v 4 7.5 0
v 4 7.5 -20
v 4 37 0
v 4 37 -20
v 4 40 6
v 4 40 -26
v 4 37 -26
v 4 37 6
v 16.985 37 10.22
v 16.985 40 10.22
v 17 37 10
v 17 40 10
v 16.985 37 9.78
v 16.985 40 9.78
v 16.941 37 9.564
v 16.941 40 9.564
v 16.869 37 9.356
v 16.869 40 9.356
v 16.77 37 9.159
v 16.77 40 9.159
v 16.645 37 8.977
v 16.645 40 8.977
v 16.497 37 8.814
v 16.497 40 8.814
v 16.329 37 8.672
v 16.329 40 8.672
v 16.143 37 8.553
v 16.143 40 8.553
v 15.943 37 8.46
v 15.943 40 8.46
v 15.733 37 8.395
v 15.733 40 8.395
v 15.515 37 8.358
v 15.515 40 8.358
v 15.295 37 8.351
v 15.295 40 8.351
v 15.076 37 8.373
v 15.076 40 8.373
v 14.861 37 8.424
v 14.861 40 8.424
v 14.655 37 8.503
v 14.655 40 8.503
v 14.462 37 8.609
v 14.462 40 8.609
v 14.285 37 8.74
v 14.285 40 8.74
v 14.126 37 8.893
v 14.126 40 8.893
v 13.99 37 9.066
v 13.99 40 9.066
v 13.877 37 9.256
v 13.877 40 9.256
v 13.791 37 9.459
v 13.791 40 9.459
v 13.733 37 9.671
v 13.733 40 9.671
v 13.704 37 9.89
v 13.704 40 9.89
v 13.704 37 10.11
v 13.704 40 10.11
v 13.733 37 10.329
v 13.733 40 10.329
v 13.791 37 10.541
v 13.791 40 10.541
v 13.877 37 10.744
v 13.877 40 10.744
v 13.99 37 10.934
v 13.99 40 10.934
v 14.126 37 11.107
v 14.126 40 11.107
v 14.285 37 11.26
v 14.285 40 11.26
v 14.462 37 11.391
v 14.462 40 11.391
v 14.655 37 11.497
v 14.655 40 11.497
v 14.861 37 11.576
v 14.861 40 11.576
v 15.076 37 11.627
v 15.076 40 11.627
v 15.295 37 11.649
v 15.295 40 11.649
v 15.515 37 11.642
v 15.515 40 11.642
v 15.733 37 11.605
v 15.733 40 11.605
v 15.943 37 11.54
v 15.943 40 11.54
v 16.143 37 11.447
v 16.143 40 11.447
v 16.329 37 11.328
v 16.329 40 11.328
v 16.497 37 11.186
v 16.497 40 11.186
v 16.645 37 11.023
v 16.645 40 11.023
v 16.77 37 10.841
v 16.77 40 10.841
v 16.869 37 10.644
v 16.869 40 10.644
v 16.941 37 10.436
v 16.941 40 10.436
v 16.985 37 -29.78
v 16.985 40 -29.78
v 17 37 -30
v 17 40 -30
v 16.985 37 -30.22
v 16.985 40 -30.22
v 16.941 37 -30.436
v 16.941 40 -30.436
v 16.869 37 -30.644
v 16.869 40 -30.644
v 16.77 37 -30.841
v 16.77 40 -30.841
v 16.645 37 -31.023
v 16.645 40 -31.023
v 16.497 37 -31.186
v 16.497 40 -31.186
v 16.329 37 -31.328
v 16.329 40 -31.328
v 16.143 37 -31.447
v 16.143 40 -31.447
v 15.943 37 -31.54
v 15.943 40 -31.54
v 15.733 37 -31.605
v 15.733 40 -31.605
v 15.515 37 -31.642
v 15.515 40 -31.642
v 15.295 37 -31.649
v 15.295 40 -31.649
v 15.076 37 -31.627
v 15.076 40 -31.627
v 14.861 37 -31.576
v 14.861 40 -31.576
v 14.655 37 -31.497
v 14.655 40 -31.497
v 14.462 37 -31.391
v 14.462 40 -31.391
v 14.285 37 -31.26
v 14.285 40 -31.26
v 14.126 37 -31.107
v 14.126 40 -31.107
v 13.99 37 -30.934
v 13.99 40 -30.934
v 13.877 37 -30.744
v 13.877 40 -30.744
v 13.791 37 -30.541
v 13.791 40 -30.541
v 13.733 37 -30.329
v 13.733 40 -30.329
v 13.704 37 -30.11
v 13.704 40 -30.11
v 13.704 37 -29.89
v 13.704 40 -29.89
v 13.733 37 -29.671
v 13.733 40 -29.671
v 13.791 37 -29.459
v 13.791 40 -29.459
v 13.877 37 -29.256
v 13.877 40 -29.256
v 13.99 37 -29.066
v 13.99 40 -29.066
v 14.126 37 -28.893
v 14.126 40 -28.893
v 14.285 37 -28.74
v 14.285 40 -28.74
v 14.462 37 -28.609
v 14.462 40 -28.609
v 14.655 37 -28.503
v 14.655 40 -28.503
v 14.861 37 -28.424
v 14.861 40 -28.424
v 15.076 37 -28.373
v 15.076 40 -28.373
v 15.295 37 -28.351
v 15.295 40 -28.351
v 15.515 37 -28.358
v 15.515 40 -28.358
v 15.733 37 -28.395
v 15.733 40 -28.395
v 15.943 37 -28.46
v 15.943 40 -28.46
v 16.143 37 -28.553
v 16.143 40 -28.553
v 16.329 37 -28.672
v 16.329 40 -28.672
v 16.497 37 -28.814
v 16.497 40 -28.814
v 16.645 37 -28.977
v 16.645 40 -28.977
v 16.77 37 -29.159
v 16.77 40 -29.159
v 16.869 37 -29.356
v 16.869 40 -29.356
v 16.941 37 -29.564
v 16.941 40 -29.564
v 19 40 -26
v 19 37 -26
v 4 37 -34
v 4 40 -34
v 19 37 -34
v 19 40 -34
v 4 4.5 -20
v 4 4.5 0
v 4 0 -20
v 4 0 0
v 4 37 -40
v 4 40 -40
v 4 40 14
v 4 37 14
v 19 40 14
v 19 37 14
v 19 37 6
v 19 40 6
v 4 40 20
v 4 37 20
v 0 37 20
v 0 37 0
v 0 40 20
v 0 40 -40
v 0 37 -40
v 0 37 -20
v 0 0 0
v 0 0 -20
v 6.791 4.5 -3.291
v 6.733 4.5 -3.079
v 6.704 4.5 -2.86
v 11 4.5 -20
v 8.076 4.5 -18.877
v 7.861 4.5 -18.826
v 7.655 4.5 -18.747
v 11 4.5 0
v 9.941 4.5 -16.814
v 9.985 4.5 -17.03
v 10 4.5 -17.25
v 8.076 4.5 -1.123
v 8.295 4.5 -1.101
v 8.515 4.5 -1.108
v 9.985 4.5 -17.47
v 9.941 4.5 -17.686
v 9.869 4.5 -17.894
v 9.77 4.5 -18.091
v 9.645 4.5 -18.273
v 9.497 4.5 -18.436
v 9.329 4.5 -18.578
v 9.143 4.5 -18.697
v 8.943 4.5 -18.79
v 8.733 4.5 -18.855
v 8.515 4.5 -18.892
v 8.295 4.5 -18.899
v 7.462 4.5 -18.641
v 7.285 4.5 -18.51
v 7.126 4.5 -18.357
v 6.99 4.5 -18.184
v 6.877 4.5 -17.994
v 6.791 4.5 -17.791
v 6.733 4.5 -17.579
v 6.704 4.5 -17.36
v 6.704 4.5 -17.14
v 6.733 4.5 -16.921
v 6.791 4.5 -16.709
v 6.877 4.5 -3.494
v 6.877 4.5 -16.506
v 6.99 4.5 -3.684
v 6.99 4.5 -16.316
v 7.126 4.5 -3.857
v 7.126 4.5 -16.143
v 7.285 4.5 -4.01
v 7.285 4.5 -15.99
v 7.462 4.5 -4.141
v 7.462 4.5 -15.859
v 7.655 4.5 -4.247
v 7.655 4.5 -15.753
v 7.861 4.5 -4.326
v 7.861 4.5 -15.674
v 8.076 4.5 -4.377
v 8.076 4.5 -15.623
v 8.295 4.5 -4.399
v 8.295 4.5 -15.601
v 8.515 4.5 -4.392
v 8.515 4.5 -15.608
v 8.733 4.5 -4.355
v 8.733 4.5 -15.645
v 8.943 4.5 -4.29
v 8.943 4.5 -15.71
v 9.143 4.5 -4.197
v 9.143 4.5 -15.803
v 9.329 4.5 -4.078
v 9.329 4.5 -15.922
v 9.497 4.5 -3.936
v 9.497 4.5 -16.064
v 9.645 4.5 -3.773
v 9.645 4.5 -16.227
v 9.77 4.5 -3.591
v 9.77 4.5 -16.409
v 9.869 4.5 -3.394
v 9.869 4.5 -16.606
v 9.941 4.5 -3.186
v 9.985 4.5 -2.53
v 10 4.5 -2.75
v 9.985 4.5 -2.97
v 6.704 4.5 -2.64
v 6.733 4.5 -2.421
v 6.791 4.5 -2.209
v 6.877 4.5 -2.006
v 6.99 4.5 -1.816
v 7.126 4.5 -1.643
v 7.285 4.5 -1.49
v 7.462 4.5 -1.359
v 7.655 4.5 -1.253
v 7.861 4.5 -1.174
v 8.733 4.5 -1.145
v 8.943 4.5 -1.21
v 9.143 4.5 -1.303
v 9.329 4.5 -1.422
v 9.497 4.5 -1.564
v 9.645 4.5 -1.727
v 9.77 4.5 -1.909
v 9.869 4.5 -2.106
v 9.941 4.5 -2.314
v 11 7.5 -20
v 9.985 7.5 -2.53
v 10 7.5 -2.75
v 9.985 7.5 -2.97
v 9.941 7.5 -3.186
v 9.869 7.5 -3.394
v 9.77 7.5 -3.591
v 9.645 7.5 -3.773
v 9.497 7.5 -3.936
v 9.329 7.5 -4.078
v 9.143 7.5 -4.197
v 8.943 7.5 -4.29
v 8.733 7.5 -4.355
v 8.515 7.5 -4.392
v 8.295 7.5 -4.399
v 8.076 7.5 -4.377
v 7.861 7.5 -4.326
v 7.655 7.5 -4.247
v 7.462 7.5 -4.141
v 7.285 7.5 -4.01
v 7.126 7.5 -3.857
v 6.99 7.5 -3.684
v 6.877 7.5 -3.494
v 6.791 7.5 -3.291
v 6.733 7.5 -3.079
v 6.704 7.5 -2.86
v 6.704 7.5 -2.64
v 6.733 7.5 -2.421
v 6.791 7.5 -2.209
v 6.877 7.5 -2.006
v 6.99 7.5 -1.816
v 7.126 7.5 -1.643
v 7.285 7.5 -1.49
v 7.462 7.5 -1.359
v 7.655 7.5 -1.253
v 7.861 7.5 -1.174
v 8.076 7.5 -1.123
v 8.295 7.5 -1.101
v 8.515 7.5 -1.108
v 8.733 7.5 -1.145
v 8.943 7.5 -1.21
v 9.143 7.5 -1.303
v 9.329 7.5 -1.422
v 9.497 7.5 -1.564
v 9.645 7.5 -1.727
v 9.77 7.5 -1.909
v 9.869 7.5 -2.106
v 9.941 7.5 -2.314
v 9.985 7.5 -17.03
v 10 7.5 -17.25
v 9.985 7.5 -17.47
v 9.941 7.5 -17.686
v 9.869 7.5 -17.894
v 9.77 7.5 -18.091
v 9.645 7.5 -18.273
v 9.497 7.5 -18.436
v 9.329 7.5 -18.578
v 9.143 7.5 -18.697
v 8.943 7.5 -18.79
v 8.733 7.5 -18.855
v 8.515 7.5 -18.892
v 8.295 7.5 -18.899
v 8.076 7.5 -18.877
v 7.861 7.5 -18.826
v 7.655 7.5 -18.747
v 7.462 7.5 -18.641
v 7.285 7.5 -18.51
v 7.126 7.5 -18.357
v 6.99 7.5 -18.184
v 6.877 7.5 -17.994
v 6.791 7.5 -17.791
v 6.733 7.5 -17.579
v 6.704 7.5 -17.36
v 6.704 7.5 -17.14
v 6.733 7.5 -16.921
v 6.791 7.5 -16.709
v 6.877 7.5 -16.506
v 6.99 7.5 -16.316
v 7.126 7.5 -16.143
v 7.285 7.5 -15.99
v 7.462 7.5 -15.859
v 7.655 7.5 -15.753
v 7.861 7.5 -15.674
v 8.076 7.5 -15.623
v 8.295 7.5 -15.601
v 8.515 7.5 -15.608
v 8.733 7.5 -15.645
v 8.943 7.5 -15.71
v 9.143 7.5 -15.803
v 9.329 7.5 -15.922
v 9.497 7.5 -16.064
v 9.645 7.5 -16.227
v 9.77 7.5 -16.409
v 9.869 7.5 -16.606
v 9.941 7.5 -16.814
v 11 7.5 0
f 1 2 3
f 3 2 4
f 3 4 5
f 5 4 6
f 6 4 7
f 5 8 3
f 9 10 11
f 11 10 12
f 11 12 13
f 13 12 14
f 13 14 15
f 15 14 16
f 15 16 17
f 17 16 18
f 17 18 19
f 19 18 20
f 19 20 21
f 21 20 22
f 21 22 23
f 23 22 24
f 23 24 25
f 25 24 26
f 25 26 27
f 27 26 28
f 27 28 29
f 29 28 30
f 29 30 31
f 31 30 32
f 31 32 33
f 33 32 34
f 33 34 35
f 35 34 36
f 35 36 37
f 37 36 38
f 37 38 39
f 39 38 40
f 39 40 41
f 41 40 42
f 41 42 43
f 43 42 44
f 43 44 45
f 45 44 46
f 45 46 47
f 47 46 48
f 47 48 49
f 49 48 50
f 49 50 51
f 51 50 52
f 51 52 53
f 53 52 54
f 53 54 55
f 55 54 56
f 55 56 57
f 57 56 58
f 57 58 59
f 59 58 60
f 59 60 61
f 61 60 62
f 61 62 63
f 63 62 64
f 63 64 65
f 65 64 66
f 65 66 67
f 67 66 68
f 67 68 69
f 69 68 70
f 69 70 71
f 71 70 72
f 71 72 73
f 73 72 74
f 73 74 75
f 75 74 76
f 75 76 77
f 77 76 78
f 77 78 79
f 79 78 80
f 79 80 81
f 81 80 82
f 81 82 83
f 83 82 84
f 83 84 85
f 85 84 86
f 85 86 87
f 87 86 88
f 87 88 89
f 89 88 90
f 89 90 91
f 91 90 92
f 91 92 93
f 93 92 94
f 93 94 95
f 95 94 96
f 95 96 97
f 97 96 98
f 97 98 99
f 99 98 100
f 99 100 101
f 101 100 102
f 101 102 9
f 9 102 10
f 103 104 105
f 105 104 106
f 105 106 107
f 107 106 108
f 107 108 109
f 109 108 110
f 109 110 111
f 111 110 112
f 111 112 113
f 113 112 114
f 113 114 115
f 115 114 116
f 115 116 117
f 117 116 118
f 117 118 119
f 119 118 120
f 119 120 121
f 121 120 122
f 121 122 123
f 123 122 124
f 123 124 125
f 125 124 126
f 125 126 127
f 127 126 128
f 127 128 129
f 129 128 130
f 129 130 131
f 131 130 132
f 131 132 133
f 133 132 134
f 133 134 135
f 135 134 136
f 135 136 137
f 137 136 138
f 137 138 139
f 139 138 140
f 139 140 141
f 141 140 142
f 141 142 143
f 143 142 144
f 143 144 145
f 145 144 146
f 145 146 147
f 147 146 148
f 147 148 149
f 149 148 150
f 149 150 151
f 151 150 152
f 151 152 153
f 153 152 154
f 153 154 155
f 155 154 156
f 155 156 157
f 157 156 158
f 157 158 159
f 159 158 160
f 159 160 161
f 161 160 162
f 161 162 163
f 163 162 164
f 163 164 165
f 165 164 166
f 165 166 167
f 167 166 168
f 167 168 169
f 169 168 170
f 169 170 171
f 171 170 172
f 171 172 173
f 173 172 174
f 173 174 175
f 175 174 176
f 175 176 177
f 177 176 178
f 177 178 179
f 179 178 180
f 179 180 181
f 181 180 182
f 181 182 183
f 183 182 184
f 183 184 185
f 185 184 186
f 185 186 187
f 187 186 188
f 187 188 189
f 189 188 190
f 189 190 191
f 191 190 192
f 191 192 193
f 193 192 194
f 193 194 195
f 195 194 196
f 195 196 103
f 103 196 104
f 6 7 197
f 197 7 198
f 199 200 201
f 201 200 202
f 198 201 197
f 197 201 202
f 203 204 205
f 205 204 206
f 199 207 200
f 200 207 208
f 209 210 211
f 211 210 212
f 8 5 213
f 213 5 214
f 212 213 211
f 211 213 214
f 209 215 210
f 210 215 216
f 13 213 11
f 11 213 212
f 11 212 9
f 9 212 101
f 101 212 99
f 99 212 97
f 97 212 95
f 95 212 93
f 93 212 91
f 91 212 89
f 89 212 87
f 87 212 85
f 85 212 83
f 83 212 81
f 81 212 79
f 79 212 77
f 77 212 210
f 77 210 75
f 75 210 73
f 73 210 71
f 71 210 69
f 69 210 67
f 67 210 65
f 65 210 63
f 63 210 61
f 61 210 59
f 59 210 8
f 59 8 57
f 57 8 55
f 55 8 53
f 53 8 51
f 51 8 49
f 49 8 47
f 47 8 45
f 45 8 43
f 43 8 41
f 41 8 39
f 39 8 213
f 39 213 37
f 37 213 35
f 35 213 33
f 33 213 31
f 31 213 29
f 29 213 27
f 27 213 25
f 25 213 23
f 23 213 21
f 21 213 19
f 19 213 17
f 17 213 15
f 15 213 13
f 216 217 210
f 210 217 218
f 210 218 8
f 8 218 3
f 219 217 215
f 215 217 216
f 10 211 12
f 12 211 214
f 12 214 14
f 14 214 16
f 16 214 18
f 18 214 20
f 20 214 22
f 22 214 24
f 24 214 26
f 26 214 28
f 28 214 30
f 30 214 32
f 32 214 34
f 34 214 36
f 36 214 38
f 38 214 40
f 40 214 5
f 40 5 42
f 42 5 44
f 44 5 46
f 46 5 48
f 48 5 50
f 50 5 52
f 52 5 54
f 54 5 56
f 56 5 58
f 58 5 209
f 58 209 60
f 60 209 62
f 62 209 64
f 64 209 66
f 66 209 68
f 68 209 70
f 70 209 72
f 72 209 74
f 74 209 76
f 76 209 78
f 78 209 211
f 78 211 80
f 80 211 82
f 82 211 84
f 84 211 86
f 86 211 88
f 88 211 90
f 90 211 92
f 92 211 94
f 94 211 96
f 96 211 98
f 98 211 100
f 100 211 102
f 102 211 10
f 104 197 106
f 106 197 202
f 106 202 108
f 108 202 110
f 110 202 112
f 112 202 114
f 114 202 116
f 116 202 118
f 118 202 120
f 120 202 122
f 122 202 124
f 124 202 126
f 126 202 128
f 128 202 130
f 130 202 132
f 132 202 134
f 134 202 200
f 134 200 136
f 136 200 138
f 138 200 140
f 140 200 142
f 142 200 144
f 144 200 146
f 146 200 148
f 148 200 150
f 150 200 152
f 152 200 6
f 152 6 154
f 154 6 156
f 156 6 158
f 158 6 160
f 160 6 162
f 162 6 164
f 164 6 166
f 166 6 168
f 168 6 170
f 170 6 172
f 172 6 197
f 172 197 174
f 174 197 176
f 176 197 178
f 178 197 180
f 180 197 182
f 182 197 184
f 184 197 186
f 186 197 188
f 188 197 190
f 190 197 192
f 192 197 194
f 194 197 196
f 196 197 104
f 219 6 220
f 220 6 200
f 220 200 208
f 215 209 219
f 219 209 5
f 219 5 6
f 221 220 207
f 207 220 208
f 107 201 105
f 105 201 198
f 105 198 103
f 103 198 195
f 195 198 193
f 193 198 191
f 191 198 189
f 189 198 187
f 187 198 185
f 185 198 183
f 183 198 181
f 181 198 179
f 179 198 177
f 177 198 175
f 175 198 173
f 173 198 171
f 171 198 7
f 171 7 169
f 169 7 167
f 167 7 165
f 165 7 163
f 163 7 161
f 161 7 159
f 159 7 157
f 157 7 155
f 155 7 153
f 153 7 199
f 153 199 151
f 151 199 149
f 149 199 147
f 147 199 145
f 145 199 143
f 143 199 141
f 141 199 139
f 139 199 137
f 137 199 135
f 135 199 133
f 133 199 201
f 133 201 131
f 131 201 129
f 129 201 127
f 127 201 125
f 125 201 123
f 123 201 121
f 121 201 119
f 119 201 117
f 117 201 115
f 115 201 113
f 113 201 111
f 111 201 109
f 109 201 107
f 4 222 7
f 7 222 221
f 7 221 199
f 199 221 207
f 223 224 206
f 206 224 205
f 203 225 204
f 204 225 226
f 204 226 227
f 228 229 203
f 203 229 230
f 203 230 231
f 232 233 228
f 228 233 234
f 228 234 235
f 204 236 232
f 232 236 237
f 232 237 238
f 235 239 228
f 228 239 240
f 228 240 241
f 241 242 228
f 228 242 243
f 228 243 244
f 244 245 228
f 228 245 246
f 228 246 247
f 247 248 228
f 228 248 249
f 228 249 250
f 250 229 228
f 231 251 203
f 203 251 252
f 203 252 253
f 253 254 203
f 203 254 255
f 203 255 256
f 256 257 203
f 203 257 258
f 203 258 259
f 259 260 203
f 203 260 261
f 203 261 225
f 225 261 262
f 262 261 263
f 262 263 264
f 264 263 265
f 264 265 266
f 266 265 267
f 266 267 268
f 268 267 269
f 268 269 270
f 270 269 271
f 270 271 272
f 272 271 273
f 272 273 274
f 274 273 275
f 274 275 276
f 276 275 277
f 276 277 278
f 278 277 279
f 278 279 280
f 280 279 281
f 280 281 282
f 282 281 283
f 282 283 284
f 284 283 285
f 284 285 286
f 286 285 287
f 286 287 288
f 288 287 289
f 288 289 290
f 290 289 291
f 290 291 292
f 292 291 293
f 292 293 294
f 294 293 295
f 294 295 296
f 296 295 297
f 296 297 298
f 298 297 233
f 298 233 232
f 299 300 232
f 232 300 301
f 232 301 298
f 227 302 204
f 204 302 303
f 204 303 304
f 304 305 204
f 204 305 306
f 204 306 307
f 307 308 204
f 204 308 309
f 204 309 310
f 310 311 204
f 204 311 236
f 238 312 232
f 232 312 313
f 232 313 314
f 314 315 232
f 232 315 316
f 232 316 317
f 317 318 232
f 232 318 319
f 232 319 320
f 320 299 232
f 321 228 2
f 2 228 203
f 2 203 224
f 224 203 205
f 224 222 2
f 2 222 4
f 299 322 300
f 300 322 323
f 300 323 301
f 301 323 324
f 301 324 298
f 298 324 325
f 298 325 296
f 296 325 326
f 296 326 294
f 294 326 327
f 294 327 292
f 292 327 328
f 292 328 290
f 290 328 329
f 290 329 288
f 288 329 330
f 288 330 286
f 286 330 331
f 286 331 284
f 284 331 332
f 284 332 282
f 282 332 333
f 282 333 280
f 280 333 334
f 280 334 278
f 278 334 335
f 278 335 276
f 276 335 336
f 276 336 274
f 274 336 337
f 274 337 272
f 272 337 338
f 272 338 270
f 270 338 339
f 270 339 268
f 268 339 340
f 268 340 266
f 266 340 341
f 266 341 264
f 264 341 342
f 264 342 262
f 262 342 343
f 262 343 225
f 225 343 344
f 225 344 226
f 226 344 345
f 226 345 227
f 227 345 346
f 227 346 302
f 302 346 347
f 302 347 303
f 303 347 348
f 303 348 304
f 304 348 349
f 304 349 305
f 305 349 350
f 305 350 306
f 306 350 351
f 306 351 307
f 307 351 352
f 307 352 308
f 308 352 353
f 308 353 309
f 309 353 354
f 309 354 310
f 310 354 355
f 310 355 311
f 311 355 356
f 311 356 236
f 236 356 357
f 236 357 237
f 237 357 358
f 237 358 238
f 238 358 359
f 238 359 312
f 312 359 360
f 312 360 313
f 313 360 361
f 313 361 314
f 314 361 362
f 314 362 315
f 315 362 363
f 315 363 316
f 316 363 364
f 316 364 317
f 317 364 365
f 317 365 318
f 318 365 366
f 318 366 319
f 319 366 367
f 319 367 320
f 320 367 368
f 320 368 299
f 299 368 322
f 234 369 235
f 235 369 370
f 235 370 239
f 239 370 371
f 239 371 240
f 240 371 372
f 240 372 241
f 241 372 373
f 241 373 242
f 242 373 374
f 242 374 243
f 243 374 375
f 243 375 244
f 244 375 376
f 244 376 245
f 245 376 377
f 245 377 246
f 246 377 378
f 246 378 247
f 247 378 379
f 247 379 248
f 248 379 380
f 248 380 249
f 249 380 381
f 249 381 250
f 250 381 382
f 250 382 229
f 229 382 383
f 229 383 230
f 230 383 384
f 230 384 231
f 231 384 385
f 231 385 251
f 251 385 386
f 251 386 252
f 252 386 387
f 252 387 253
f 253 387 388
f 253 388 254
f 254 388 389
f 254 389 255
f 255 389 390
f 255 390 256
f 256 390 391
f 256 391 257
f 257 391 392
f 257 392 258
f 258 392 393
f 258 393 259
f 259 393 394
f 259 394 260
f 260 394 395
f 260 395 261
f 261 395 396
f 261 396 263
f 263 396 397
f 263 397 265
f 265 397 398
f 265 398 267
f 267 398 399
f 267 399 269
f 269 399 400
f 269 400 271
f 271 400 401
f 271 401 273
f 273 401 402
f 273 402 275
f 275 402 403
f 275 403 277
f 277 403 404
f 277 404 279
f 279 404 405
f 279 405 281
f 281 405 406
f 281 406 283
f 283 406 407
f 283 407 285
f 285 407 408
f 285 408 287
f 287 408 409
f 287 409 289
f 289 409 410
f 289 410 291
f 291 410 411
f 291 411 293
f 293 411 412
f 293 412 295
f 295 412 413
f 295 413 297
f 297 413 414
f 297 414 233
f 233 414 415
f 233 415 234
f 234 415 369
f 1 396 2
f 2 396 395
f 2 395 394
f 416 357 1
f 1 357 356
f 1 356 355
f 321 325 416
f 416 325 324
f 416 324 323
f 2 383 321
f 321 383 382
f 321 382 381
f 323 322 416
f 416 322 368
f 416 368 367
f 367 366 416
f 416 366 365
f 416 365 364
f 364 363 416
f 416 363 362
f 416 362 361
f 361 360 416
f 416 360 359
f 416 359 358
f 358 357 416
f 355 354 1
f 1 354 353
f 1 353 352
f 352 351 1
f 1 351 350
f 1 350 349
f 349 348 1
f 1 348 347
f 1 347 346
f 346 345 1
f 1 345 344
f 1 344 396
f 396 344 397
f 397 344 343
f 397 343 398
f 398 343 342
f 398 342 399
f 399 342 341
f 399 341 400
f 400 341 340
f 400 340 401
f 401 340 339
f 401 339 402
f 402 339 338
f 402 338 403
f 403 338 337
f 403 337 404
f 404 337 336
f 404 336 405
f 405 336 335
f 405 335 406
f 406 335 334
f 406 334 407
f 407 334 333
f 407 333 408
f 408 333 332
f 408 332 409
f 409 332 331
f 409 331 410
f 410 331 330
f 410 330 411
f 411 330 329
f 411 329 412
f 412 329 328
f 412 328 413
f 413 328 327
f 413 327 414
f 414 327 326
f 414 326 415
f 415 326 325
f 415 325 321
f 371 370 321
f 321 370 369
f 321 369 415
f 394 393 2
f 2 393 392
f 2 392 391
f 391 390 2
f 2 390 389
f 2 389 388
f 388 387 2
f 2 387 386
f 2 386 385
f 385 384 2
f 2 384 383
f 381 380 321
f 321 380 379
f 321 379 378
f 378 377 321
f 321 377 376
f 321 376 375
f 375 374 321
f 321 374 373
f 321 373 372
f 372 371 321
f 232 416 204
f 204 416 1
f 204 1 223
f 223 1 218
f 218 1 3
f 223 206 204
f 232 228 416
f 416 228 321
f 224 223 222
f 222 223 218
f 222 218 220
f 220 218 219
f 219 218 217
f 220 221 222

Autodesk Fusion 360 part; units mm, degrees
sketch "Sketch1" plane through (0, 0, 0) normal (1, 0, 0) x (0, 0, -1)
  line L0 (0, 0) -> (0, 37)
  line L1 (0, 37) -> (-20, 37)
  line L2 (-20, 37) -> (-20, 40)
  line L3 (-20, 40) -> (40, 40)
  line L4 (40, 40) -> (40, 37)
  line L5 (40, 37) -> (20, 37)
  line L6 (20, 37) -> (20, 0)
  line L7 (20, 0) -> (0, 0)
  line L8 (0, 4.5) -> (20, 4.5)
  line L9 (20, 4.5) -> (20, 7.5)
  line L10 (20, 7.5) -> (0, 7.5)
  line L11 (0, 7.5) -> (0, 4.5)
  line L12 (10, 0) -> (10, 40) construction
  point P0 (10, 40)
  dimension "d1" = 20
  dimension "d2" = 4.5
  dimension "d3" = 3
  dimension "d5" = 40
  dimension "d7" = 3
  dimension "d8" = 60
extrude "Extrude1" add sketch "Sketch1" along normal blind 4 makes body 1
extrude "Extrude2" add sketch "Sketch1" along normal blind 11 separate body contours L0 L6 L8 L9 L10 L11 makes body 2
sketch "Sketch2" plane through (0, 7.5, 0) normal (0, 1, 0) x (-1, 0, 0)
  line L0 (0, -20) -> (0, 0)
  line L1 (0, 0) -> (-11, 0)
  line L2 (-11, 0) -> (-11, -20)
  line L3 (-11, -20) -> (0, -20)
  circle A0 centre (-8.35, -17.25) radius 1.65
  circle A1 centre (-8.35, -2.75) radius 1.65
  line L4 (-8.35, -2.75) -> (-8.35, -17.25) construction
  line L5 (-11, -10) -> (-5.7, -10) construction
  point P0 (-8.35, -10)
  dimension "d15" = 14.5
  dimension "d16" = 2.65
  dimension "d17" = 3.3
  dimension "d18" = 3.3
extrude "Extrude3" cut sketch "Sketch2" against normal through all contours A0 | A1 bodies 2
sketch "Sketch3" plane through (0, 40, 0) normal (0, 1, 0) x (-1, 0, 0)
  line L0 (0, -40) -> (0, 20)
  line L1 (0, 20) -> (-4, 20)
  line L2 (-4, 20) -> (-4, -40)
  line L3 (-4, -40) -> (0, -40)
sketch "Sketch4" plane through (0, 40, 0) normal (0, 1, 0) x (-1, 0, 0)
  circle A0 centre (-15.35, -30) radius 1.65
  circle A1 centre (-15.35, 10) radius 1.65
  line L0 (-15.35, 10) -> (-15.35, -30) construction
  line L1 (0, 20) -> (0, -40)
  line L2 (0, -10) -> (-15.35, -10) construction
  dimension "d20" = 40
  dimension "d21" = 3.3
  dimension "d22" = 3.3
  dimension "d23" = 15.35
sketch "Sketch5" plane through (4, 0, 0) normal (1, 0, 0) x (0, 0, -1)
  line L0 (0, 37) -> (0, 0)
  line L1 (0, 0) -> (20, 0)
  line L2 (20, 0) -> (20, 37)
  line L3 (20, 37) -> (40, 37)
  line L4 (40, 37) -> (40, 40)
  line L5 (40, 40) -> (-20, 40)
  line L6 (-20, 40) -> (-20, 37)
  line L7 (-20, 37) -> (0, 37)
  line L8 (-14, 40) -> (-6, 40)
  line L9 (-6, 40) -> (-6, 37)
  line L10 (-6, 37) -> (-14, 37)
  line L11 (-14, 37) -> (-14, 40)
  line L12 (26, 40) -> (34, 40)
  line L13 (34, 40) -> (34, 37)
  line L14 (34, 37) -> (26, 37)
  line L15 (26, 37) -> (26, 40)
  point P0 (-10, 40)
  point P1 (30, 40)
  dimension "d24" = 8
  dimension "d25" = 8
  dimension "d26" = 4
  dimension "d27" = 4
extrude "Extrude4" add sketch "Sketch5" along normal blind 15 contours L5 L7 L8 L9 L10 L11 | L3 L5 L12 L13 L14 L15 bodies 1
extrude "Extrude5" cut sketch "Sketch4" against normal through all bodies 1
combine "Combine1" operation add target body 2 tool bodies 1
equation "d3 = e"
equation "e = 3 mm"
equation "d7 = e"
equation "t = 3.3 mm"
equation "d16 = 1 mm + ( 3.3 / 2 ) * 1 mm"
equation "d17 = t"
equation "d18 = t"
equation "d21 = t"
equation "d22 = t"
